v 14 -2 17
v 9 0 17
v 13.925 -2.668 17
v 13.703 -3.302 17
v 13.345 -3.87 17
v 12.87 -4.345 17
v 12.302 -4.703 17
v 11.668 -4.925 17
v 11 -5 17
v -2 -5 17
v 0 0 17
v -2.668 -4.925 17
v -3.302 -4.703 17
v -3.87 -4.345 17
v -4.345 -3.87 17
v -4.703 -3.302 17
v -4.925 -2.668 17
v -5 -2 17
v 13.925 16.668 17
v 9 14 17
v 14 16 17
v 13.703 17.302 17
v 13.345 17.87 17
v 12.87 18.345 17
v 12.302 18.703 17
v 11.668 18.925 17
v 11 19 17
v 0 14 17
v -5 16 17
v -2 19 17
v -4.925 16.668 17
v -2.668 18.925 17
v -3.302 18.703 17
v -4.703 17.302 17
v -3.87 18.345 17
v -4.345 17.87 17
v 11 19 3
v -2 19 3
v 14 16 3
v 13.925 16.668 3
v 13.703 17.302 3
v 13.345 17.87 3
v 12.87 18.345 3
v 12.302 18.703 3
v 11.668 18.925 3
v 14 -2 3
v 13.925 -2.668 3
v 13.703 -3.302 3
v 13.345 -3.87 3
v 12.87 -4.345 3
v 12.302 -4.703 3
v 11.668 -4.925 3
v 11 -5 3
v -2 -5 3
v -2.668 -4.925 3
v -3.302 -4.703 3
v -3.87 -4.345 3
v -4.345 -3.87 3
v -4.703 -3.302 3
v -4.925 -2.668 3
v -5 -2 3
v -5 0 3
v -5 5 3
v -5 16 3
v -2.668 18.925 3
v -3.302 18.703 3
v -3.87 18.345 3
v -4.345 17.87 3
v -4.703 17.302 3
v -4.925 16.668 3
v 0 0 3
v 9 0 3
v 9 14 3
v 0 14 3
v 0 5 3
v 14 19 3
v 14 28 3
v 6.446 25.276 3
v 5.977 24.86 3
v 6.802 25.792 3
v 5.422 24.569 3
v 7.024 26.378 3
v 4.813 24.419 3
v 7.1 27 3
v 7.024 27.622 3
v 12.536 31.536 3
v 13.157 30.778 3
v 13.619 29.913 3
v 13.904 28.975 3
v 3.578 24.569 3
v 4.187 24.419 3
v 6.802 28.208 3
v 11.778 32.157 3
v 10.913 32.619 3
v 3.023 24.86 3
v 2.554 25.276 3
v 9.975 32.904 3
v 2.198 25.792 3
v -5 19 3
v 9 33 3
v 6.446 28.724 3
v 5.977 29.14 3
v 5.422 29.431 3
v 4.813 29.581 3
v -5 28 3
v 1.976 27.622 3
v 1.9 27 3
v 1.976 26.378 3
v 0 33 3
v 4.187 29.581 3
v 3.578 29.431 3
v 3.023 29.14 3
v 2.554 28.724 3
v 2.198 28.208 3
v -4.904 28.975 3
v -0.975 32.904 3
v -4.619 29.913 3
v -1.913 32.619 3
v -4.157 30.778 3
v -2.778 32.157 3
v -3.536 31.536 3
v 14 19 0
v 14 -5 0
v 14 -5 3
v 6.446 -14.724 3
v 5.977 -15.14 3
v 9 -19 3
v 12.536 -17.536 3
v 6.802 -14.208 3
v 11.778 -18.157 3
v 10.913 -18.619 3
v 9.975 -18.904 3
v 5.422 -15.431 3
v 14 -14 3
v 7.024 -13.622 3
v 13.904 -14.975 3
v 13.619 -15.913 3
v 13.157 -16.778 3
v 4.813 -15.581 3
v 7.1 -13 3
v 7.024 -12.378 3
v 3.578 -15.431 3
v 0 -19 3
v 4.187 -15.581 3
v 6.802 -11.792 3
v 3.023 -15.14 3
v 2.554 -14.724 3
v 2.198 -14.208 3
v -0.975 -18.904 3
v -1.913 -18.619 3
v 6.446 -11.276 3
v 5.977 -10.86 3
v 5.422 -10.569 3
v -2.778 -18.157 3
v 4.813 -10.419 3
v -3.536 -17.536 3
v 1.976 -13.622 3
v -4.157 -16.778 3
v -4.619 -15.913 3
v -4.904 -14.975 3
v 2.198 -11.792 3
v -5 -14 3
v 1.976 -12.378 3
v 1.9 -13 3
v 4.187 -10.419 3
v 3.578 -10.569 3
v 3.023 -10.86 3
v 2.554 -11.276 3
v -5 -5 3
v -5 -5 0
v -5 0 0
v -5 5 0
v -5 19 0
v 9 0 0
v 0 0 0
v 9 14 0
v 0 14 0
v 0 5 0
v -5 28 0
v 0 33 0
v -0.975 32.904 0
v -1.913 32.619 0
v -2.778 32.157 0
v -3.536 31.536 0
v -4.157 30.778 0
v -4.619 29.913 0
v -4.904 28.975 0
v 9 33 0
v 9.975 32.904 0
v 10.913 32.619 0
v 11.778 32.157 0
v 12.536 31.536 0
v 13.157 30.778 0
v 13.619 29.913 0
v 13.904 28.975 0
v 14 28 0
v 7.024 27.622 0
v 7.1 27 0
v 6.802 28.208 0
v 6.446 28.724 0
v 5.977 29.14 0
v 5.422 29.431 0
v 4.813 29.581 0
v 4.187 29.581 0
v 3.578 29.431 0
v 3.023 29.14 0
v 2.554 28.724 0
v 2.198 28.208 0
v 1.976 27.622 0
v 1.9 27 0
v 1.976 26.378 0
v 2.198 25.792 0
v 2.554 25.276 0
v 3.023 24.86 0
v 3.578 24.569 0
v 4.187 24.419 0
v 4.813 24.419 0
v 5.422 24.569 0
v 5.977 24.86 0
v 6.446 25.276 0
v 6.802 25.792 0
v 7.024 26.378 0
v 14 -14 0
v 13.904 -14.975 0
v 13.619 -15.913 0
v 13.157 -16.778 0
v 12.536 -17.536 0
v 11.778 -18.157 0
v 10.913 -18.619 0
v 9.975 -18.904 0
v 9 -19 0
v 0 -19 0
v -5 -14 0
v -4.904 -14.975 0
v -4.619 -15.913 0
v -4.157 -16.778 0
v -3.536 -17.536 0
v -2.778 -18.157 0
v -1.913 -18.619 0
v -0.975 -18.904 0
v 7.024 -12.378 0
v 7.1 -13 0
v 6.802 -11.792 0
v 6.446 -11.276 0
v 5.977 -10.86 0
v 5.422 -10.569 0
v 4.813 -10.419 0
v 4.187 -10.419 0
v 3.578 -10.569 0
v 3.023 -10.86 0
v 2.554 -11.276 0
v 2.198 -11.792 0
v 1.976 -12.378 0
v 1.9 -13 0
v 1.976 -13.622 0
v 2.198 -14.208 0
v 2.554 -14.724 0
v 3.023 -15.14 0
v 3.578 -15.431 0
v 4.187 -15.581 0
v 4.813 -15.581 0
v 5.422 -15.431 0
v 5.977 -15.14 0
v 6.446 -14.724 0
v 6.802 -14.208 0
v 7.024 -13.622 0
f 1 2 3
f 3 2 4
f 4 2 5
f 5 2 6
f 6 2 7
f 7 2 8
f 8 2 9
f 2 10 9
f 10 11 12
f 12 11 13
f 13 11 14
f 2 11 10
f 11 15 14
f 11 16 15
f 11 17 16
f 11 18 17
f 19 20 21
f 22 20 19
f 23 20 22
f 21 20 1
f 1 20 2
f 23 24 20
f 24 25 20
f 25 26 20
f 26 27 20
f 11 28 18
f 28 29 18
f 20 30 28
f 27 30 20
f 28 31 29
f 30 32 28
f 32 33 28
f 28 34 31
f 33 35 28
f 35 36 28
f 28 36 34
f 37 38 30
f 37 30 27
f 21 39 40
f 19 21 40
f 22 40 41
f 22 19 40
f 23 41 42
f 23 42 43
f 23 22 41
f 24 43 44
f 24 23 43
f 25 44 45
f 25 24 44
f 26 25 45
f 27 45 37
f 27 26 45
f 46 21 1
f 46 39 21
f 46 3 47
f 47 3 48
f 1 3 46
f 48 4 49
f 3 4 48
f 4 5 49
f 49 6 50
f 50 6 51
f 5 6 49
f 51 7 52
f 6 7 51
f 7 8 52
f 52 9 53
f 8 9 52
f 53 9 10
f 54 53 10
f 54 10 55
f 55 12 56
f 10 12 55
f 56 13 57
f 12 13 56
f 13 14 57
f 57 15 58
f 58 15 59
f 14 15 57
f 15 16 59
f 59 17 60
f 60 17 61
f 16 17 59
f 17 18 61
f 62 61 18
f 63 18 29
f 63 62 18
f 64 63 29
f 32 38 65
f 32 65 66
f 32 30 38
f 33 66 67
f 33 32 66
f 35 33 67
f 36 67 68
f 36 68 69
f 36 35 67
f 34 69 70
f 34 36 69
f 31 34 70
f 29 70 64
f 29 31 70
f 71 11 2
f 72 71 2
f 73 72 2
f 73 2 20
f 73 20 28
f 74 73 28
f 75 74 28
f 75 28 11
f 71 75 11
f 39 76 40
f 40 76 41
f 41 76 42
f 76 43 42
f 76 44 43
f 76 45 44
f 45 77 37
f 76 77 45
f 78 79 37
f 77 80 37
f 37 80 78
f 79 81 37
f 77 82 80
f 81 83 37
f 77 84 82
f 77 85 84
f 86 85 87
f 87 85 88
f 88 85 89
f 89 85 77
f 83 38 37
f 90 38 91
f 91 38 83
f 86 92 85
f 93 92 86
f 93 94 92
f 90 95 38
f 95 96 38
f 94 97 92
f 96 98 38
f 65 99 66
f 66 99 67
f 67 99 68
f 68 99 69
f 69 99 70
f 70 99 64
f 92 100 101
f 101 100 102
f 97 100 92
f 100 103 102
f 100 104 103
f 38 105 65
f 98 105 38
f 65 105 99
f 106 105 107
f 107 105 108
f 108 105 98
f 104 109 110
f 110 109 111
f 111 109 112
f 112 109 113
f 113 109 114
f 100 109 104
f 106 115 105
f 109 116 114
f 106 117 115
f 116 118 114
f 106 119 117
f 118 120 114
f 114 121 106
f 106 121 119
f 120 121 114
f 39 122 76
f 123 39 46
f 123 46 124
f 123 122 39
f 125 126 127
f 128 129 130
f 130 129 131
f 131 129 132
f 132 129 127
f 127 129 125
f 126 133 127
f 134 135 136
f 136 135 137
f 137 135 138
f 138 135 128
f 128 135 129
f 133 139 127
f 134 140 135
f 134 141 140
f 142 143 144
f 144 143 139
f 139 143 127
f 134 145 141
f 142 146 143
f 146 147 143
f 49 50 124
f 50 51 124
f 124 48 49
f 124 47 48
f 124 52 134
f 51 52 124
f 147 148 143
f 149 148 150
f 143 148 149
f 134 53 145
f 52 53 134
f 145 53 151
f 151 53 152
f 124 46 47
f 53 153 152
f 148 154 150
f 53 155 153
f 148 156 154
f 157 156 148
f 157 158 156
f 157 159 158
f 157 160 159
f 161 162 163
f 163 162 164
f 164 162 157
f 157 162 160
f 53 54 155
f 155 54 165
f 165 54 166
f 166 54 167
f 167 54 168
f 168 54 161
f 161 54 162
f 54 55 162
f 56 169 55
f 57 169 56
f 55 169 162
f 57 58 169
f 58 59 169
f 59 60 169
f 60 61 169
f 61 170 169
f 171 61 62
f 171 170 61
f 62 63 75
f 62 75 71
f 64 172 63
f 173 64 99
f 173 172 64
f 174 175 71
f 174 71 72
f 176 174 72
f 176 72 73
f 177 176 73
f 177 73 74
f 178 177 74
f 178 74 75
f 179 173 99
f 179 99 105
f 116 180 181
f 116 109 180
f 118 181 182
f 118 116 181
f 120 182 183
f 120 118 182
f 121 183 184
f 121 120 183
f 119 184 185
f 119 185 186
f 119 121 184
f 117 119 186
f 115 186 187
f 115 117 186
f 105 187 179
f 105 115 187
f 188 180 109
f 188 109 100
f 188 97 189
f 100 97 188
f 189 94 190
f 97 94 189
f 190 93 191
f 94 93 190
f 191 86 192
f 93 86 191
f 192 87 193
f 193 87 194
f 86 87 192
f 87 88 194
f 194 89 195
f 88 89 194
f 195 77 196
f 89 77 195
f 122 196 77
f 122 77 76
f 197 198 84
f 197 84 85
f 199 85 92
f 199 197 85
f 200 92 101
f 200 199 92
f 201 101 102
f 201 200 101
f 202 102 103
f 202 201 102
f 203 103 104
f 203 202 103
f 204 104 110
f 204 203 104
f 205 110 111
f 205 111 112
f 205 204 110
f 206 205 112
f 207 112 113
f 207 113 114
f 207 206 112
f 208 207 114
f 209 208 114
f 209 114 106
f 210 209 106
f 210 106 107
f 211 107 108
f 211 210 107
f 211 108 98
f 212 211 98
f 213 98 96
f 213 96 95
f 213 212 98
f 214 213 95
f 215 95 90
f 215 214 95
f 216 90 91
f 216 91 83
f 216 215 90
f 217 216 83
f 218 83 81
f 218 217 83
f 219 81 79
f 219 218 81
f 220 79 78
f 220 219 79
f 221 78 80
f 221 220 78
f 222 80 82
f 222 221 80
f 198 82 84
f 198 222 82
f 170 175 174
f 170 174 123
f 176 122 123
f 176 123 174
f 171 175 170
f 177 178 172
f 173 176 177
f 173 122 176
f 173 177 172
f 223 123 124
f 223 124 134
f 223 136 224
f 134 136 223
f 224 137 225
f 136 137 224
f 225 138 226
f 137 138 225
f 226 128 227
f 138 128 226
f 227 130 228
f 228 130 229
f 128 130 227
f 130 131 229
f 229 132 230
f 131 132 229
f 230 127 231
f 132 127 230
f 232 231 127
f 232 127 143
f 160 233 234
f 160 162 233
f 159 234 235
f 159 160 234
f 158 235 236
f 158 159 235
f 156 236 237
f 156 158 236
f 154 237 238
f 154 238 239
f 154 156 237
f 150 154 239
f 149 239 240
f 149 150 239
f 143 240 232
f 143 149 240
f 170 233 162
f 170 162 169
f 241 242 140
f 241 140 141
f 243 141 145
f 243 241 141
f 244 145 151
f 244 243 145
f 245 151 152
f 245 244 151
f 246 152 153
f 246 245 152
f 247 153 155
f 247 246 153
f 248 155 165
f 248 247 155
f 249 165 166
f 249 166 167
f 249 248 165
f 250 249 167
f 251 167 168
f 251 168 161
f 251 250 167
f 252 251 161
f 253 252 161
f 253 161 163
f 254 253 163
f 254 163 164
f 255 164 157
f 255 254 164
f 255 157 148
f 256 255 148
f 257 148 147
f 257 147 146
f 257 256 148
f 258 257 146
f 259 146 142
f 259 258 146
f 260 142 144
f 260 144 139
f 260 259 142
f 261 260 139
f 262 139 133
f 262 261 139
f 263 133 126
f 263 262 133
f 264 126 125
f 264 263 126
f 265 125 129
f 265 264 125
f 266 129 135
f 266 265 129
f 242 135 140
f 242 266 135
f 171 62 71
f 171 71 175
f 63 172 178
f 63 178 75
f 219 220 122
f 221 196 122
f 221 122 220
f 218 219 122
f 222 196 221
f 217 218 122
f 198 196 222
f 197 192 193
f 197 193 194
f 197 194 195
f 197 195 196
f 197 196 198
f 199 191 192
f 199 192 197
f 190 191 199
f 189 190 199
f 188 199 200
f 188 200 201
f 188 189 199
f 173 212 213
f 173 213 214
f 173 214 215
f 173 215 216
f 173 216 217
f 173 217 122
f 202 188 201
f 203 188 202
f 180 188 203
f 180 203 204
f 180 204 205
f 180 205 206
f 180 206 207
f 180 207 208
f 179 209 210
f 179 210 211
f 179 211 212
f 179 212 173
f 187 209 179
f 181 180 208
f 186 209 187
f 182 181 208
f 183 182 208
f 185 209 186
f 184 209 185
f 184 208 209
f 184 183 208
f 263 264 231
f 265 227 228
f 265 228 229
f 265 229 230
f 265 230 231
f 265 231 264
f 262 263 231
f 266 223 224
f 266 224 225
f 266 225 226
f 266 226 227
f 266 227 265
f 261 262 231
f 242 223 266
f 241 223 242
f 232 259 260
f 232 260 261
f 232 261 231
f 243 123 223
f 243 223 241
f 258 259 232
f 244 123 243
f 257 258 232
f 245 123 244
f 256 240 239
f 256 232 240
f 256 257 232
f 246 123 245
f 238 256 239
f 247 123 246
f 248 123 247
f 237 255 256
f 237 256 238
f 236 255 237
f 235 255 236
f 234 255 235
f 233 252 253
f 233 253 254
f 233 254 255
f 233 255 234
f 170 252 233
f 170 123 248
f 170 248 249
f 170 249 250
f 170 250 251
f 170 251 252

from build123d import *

# Parameters (mm, degrees)
SKETCH_W      = 19
SKETCH_H      = 52
SKETCH_R      = 2.6
SKETCH_W_2    = 9
SKETCH_H_2    = 14
PAD_DEPTH     = 3
SKETCH001_W   = 19
SKETCH001_H   = 24
SKETCH001_W_2 = 9
SKETCH001_H_2 = 14
PAD001_DEPTH  = 17
FILLET_R      = 5
FILLET001_R   = 3
FILLET002_R   = 3
FILLET003_R   = 3
SKETCH002_W   = 5
SKETCH002_H   = 3
POCKET_DEPTH  = 5


with BuildPart() as part:
    # Sketch → Pad (new body)
    with BuildSketch(Plane.XY):
        with Locations((4.5, 7)):
            Rectangle(SKETCH_W, SKETCH_H)
        with Locations((4.5, -13)):
            Circle(SKETCH_R, mode=Mode.SUBTRACT)
        with Locations((4.5, 27)):
            Circle(SKETCH_R, mode=Mode.SUBTRACT)
        with Locations((4.5, 7)):
            Rectangle(SKETCH_W_2, SKETCH_H_2, mode=Mode.SUBTRACT)
    extrude(amount=PAD_DEPTH)

    # Sketch001 → Pad001 (join)
    with BuildSketch(Plane.XY):
        with Locations((4.5, 7)):
            Rectangle(SKETCH001_W, SKETCH001_H)
        with Locations((4.5, 7)):
            Rectangle(SKETCH001_W_2, SKETCH001_H_2, mode=Mode.SUBTRACT)
    extrude(amount=PAD001_DEPTH)

    # Fillet
    fillet_edges = [part.edges().sort_by_distance(p)[0] for p in [
        (14, -19, 1.5),
        (-5, -19, 1.5),
        (14, 33, 1.5),
        (-5, 33, 1.5),
    ]]
    fillet(fillet_edges, radius=FILLET_R)

    # Fillet001
    fillet001_edges = [part.edges().sort_by_distance(p)[0] for p in [
        (14, -5, 10),
    ]]
    fillet(fillet001_edges, radius=FILLET001_R)

    # Fillet002
    fillet002_edges = [part.edges().sort_by_distance(p)[0] for p in [
        (-5, -5, 10),
        (-5, 19, 10),
    ]]
    fillet(fillet002_edges, radius=FILLET002_R)

    # Fillet003
    fillet003_edges = [part.edges().sort_by_distance(p)[0] for p in [
        (14, 19, 10),
    ]]
    fillet(fillet003_edges, radius=FILLET003_R)

    # Sketch002 (on Face16 of Fillet003) → Pocket (cut)
    with BuildSketch(Plane(origin=(-5, 0, 0), x_dir=(0, -1, 0), z_dir=(-1, 0, 0))):
        with Locations((-2.5, 1.5)):
            Rectangle(SKETCH002_W, SKETCH002_H)
    extrude(amount=-POCKET_DEPTH, mode=Mode.SUBTRACT)


solid = part.part
